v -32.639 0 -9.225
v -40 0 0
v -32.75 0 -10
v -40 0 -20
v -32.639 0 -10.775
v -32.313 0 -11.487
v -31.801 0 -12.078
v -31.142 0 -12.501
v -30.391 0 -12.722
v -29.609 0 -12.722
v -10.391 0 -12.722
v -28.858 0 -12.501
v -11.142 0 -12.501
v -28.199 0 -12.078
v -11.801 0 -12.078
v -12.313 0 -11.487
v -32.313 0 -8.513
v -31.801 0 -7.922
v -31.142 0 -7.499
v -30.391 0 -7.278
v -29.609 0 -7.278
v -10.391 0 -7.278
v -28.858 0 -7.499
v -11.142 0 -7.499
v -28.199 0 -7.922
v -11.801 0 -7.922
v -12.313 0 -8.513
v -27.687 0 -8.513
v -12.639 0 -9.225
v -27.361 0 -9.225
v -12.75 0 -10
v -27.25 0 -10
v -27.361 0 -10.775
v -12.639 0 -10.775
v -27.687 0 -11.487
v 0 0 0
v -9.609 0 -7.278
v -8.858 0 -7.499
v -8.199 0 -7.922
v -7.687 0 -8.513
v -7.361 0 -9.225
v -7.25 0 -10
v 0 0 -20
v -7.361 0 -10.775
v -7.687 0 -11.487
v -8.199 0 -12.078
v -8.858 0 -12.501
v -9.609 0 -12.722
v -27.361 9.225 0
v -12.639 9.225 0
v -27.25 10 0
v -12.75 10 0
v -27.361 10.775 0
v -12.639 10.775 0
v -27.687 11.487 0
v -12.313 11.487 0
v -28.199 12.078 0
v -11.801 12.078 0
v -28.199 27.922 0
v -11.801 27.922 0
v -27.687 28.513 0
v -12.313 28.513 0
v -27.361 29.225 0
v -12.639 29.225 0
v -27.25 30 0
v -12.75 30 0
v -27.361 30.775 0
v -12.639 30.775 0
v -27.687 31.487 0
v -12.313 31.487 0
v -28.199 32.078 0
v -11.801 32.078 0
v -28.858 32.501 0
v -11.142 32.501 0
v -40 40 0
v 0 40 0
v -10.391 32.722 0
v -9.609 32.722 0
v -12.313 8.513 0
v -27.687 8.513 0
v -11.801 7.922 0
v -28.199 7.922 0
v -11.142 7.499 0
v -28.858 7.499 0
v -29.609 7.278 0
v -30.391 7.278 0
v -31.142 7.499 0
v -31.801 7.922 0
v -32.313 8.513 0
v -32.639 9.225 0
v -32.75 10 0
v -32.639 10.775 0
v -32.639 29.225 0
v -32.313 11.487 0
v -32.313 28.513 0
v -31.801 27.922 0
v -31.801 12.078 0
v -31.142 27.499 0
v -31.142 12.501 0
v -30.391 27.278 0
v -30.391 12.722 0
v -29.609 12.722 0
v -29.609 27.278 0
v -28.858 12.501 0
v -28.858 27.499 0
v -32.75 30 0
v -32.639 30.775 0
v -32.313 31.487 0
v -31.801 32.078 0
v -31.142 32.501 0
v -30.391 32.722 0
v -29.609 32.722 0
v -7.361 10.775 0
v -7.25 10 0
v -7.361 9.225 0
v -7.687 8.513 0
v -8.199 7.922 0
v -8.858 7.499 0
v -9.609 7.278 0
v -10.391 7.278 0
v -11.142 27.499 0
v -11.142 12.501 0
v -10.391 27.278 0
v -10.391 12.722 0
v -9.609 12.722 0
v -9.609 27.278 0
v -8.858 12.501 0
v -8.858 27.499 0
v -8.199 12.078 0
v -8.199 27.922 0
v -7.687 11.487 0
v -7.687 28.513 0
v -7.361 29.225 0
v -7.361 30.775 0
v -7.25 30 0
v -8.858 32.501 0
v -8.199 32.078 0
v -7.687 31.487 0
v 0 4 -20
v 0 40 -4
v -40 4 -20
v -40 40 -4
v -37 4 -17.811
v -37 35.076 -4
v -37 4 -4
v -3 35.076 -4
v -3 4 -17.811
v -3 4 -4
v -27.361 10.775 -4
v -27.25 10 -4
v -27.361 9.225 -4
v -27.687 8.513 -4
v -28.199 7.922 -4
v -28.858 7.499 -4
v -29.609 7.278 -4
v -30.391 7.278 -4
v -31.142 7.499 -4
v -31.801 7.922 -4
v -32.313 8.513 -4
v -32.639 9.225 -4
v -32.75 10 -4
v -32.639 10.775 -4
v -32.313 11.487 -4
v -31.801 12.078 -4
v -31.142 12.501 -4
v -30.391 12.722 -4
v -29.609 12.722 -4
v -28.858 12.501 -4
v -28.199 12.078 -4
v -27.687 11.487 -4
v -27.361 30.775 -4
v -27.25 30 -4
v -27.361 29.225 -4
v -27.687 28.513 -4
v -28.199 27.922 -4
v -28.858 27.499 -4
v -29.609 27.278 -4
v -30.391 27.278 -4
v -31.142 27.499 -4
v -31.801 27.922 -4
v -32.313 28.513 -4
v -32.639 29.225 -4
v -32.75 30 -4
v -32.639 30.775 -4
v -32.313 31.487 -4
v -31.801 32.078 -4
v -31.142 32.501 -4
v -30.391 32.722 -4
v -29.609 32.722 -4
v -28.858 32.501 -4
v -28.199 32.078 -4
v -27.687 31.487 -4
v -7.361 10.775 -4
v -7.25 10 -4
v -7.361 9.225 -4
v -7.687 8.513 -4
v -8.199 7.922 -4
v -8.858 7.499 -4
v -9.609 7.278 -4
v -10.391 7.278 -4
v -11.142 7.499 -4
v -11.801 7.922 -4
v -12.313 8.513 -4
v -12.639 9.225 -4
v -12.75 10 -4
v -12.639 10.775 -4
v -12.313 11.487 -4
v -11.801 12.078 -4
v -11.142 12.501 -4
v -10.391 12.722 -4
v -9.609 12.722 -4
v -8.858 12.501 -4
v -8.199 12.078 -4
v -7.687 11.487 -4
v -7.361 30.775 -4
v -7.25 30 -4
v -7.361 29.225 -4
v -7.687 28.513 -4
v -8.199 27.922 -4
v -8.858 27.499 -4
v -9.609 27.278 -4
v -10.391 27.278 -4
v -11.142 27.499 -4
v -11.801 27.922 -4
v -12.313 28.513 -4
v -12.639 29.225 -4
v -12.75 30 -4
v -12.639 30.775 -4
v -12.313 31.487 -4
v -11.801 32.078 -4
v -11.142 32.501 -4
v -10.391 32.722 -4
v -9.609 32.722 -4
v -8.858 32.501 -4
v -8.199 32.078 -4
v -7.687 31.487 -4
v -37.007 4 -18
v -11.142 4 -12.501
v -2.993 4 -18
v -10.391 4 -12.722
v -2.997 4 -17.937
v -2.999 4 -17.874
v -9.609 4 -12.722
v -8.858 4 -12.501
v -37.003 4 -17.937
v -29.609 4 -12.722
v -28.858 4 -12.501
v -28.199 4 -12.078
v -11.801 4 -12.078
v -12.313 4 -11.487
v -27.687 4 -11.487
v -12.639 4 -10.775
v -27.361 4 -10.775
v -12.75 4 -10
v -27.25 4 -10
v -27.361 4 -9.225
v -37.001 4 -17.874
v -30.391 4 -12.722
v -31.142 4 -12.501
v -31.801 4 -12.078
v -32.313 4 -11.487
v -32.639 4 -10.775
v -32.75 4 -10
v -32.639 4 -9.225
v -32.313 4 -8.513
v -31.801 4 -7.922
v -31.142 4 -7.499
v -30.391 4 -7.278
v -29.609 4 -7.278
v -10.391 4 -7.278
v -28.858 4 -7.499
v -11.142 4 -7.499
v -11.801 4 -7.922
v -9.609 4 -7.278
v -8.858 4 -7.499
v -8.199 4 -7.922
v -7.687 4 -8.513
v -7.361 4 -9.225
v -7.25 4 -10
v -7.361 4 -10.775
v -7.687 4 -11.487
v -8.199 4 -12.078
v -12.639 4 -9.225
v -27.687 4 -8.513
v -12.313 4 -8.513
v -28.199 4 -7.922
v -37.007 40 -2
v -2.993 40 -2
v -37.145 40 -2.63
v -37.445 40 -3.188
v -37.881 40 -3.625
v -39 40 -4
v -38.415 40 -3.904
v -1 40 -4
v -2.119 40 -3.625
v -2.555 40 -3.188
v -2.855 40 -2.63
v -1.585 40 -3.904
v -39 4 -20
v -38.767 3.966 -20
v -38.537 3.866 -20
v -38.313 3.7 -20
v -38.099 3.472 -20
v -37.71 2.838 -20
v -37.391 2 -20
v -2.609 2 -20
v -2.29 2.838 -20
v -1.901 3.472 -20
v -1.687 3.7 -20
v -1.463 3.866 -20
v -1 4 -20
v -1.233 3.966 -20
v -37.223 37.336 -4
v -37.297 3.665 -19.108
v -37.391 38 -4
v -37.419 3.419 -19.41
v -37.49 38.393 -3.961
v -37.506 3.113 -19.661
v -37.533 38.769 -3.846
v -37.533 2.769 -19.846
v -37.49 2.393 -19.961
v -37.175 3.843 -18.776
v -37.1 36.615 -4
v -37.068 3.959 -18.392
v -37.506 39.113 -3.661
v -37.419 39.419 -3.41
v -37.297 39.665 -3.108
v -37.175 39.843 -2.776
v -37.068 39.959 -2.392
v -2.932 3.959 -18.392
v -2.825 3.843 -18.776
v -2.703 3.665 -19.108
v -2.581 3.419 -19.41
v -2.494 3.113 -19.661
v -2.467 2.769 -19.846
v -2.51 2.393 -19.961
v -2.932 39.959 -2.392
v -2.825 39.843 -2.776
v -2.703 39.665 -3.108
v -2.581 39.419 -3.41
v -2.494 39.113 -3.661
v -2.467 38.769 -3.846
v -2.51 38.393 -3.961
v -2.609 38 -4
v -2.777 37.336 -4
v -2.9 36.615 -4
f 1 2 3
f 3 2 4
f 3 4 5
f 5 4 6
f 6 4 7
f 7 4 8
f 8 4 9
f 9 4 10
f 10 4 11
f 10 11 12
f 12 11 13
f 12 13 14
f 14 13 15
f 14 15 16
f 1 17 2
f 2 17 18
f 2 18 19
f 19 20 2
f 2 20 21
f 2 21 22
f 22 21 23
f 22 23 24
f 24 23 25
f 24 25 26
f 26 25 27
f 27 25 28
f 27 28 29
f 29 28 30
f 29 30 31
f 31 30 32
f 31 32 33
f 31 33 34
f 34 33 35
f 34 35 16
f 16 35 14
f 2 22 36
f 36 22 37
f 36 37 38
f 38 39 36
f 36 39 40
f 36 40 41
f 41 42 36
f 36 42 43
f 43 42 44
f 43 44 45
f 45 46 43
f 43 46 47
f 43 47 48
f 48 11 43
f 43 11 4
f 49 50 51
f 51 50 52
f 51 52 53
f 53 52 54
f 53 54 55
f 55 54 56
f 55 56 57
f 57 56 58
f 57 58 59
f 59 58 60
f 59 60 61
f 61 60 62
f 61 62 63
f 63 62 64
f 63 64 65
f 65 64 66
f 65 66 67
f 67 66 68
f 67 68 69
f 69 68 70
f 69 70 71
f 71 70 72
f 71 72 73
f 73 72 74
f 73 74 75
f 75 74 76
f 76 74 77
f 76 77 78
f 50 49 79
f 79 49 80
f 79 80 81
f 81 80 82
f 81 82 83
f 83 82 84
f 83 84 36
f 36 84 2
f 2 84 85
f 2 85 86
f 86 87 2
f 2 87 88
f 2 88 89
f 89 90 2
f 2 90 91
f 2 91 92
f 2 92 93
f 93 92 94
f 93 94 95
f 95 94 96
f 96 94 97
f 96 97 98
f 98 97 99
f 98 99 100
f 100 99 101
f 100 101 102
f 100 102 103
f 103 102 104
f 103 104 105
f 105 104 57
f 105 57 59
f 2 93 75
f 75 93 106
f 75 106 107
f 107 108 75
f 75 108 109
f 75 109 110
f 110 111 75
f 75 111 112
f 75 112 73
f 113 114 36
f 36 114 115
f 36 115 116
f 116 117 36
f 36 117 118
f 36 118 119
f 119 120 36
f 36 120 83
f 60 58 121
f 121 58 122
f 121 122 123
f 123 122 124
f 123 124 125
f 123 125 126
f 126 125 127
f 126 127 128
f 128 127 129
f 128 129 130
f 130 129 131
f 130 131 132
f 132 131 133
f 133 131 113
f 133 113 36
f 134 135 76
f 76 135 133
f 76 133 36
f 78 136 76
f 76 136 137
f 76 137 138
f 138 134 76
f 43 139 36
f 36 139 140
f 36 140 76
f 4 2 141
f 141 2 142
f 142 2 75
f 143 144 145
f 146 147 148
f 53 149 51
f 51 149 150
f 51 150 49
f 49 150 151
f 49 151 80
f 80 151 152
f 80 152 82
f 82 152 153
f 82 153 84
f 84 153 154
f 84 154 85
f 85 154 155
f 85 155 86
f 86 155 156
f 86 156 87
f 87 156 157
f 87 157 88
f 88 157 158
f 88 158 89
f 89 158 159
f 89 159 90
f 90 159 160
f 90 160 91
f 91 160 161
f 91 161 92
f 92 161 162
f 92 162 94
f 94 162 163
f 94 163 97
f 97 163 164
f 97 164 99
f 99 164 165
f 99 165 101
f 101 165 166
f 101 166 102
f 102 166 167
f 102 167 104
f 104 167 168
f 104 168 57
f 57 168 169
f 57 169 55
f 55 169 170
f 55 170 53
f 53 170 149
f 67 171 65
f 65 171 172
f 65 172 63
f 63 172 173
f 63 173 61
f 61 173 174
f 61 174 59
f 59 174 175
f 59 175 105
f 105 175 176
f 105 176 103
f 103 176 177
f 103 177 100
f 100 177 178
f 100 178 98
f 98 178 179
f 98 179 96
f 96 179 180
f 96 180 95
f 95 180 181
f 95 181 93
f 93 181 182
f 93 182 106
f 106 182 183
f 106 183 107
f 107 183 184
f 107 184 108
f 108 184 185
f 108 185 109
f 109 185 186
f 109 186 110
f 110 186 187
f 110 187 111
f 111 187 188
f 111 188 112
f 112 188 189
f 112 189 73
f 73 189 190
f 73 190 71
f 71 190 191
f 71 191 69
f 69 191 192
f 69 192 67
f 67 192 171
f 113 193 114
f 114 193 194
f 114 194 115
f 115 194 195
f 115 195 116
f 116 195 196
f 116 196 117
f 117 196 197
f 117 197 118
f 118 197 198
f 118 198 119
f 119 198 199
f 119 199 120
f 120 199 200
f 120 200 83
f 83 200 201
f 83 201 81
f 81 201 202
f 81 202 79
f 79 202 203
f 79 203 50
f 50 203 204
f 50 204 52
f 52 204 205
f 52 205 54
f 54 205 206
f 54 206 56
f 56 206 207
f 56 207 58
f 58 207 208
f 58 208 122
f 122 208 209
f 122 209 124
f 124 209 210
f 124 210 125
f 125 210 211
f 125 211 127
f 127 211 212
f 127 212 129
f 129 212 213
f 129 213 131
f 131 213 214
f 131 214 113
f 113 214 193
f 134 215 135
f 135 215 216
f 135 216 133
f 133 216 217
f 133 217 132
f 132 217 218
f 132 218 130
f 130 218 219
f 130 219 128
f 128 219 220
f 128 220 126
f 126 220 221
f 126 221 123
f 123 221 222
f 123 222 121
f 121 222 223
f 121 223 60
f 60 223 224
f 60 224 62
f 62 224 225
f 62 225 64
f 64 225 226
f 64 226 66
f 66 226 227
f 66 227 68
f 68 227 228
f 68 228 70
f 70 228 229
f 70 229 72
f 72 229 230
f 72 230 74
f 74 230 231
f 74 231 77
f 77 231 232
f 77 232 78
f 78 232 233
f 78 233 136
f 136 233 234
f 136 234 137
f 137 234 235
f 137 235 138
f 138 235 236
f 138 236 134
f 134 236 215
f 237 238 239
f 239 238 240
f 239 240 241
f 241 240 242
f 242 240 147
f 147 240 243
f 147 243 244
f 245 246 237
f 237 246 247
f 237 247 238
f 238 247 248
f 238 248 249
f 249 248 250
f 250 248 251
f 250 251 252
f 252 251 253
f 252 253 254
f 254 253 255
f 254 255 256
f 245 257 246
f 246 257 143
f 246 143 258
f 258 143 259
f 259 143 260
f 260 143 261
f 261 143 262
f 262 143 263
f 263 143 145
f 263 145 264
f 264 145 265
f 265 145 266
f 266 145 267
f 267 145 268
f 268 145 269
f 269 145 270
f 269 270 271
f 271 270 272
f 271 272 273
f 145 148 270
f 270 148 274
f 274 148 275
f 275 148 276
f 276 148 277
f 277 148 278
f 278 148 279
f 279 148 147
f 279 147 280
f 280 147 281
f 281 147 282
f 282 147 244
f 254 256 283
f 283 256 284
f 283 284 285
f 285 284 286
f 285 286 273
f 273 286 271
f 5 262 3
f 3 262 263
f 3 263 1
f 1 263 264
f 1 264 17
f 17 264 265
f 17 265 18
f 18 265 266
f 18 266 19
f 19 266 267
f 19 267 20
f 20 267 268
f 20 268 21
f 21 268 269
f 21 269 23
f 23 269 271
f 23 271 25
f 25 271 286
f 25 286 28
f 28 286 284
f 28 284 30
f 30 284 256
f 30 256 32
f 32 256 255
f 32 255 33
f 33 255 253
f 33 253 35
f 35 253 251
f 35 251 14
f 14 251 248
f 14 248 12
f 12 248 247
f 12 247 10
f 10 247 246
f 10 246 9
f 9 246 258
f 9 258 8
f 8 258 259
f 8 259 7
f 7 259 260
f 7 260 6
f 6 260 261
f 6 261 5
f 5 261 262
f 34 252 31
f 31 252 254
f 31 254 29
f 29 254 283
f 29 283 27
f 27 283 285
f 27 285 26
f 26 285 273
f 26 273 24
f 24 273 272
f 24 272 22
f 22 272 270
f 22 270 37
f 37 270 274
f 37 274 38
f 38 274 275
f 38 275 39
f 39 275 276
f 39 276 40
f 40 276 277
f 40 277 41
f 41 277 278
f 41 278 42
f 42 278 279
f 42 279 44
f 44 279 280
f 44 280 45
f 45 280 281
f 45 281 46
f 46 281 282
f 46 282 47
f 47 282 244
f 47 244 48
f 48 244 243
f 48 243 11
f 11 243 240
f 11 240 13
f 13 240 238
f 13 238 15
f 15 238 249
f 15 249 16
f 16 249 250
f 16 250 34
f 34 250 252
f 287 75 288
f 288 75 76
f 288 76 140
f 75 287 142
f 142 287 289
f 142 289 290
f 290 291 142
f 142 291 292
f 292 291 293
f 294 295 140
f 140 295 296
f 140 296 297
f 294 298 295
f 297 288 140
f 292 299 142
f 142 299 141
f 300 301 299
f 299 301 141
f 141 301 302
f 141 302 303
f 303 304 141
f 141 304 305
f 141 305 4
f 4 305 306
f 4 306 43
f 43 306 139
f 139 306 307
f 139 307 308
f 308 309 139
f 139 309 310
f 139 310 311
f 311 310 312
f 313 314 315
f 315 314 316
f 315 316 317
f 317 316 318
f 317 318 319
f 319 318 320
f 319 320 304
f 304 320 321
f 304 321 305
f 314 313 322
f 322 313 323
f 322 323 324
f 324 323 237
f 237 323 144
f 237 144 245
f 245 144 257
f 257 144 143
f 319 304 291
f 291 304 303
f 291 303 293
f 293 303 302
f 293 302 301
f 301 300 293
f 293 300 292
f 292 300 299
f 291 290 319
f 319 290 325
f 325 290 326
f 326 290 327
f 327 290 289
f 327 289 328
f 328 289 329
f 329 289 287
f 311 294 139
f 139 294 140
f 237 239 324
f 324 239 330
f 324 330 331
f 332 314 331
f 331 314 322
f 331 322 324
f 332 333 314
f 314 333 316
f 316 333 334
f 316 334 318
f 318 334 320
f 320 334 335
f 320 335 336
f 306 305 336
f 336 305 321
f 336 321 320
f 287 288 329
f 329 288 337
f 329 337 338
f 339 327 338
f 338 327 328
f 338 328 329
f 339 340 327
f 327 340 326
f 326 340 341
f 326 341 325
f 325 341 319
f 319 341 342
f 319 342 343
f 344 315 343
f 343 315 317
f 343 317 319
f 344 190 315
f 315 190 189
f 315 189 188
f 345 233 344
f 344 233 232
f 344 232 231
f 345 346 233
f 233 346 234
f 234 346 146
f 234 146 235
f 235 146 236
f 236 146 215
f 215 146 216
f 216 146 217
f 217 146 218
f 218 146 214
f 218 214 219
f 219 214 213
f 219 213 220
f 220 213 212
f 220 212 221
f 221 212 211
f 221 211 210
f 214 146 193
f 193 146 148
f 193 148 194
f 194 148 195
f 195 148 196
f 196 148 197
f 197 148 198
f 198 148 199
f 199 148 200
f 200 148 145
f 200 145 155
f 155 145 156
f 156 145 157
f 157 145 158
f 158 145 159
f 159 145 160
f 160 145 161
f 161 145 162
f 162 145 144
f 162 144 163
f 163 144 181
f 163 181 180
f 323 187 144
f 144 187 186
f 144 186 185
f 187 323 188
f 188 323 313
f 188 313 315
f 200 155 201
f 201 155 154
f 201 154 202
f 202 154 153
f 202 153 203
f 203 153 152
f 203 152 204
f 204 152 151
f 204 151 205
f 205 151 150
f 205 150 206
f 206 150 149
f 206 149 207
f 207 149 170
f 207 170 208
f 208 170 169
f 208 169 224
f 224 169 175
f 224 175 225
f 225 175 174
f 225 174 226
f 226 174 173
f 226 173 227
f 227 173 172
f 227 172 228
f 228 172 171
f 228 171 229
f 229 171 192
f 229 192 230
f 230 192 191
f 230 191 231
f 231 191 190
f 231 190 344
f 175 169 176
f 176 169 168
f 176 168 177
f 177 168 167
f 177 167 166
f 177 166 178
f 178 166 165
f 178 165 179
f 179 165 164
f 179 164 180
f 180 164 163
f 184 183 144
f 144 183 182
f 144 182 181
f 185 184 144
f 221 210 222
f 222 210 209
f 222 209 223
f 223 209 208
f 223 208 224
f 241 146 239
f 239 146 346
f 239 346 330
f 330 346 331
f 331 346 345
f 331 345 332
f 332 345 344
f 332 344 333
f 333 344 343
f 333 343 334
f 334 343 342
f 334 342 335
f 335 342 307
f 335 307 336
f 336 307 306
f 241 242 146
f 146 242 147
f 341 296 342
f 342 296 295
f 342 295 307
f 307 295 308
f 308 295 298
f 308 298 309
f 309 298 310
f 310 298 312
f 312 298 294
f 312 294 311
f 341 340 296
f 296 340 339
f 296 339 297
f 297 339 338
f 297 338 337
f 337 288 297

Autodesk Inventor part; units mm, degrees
ref_plane "YZ Plane" through (0, 0, 0) normal (1, 0, 0) x (0, 1, 0)
ref_plane "XZ Plane" through (0, 0, 0) normal (0, 1, 0) x (-1, 0, 0)
ref_plane "XY Plane" through (0, 0, 0) normal (0, 0, 1) x (1, 0, 0)
sketch "Sketch1" plane through (0, 0, 0) normal (0, 1, 0) x (-1, 0, 0)
  line L0 (0, 0) -> (40, 0)
  line L1 (40, 0) -> (40, -20)
  line L2 (40, -20) -> (0, -20)
  line L3 (0, -20) -> (0, 0)
  dimension "d0" = 40
  dimension "d1" = 20
extrude "Extrusion1" add sketch "Sketch1" along normal blind 4
sketch "Sketch2" plane through (0, 4, 0) normal (0, 1, 0) x (1, 0, 0)
  circle A0 centre (-30, 10) radius 2.75
  circle A1 centre (-10, 10) radius 2.75
  line L0 (0, 20) -> (-40, 20) projected
  line L1 (-40, 20) -> (-40, 0) projected
  point P0 (0, 0)
  dimension "d4" = 5.5
  dimension "d5" = 5.5
  dimension "d6" = 10
  dimension "d7" = 10
  dimension "d8" = 20
extrude "Extrusion2" cut sketch "Sketch2" against normal through all
sketch "Sketch3" plane through (0, 4, 0) normal (0, 1, 0) x (1, 0, 0)
  line L0 (-40, 20) -> (-40, 0) projected
  line L1 (-40, 0) -> (0, 0)
  line L2 (0, 0) -> (0, 4)
  line L3 (0, 4) -> (-40, 4)
  line L4 (-40, 4) -> (-40, 0)
  dimension "d11" = 40
  dimension "d12" = 4
extrude "Extrusion3" add sketch "Sketch3" along normal blind 36
sketch "Sketch4" plane through (0, 4, -4) normal (0, 0, -1) x (-1, 0, 0)
  circle A0 centre (10, 26) radius 2.75
  line L0 (0, 0) -> (0, 36) projected
  line L1 (0, 36) -> (40, 36) projected
  point P0 (0, -4)
  dimension "d15" = 5.5
  dimension "d16" = 10
  dimension "d17" = 10
extrude "Extrusion4" cut sketch "Sketch4" against normal through all
pattern_linear "Rectangular Pattern1" count 2 spacing 20 along (0, -1, 0) count 2 spacing 20 along (-1, 0, 0) of "Extrusion4"
sketch "Sketch5" plane through (0, 0, 0) normal (1, 0, 0) x (0, 0, -1)
  line L0 (4, 4) -> (4, 40) projected
  line L1 (20, 4) -> (4, 4) projected
  line L2 (4, 40) -> (20, 4)
  line L3 (20, 4) -> (4, 4)
  line L4 (4, 4) -> (4, 40)
  point P0 (0, 0)
extrude "Extrusion5" add sketch "Sketch5" against normal blind 3
pattern_linear "Rectangular Pattern2" count 2 spacing 37 along (-1, 0, 0) of "Extrusion5"
fillet "Fillet1" radius 2 4 edges at (-20, 4, -20) (-20, 40, -4) (-3, 22, -12) (-37, 22, -12)
properties part number "Bottom_Bracket"
